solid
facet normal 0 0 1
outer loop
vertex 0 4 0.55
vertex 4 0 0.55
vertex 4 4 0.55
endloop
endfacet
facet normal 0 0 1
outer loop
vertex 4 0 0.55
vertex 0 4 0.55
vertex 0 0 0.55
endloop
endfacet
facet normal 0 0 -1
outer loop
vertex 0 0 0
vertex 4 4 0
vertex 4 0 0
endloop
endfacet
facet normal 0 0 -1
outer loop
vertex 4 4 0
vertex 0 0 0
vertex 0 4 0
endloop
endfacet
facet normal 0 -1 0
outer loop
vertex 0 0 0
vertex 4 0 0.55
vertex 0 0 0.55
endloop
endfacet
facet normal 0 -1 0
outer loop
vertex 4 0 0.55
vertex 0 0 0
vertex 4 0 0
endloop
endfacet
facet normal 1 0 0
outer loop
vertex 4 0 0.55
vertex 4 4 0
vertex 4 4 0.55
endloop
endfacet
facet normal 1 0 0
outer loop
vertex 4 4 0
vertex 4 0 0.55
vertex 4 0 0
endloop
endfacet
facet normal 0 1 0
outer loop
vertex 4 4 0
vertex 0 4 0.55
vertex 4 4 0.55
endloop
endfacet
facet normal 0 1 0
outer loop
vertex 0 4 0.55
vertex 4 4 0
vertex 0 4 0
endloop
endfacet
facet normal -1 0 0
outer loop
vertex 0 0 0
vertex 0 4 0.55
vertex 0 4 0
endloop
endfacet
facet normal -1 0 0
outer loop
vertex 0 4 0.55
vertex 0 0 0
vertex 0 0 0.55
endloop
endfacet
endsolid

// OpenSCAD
/* Warning, this is a very basic generator with a lot of approximation 
input data : [UQFN, GNX, 4x4x0.55mm, 20, , A, C04-00252A]
generated by com.zoubworld.electronics.cad.model3d.Basic
Date : Sun Feb 15 10:50:48 CET 2026
*/

//body
color("black")
translate([0,0,0])
cube([4.0,4.0,0.55], center=false);
